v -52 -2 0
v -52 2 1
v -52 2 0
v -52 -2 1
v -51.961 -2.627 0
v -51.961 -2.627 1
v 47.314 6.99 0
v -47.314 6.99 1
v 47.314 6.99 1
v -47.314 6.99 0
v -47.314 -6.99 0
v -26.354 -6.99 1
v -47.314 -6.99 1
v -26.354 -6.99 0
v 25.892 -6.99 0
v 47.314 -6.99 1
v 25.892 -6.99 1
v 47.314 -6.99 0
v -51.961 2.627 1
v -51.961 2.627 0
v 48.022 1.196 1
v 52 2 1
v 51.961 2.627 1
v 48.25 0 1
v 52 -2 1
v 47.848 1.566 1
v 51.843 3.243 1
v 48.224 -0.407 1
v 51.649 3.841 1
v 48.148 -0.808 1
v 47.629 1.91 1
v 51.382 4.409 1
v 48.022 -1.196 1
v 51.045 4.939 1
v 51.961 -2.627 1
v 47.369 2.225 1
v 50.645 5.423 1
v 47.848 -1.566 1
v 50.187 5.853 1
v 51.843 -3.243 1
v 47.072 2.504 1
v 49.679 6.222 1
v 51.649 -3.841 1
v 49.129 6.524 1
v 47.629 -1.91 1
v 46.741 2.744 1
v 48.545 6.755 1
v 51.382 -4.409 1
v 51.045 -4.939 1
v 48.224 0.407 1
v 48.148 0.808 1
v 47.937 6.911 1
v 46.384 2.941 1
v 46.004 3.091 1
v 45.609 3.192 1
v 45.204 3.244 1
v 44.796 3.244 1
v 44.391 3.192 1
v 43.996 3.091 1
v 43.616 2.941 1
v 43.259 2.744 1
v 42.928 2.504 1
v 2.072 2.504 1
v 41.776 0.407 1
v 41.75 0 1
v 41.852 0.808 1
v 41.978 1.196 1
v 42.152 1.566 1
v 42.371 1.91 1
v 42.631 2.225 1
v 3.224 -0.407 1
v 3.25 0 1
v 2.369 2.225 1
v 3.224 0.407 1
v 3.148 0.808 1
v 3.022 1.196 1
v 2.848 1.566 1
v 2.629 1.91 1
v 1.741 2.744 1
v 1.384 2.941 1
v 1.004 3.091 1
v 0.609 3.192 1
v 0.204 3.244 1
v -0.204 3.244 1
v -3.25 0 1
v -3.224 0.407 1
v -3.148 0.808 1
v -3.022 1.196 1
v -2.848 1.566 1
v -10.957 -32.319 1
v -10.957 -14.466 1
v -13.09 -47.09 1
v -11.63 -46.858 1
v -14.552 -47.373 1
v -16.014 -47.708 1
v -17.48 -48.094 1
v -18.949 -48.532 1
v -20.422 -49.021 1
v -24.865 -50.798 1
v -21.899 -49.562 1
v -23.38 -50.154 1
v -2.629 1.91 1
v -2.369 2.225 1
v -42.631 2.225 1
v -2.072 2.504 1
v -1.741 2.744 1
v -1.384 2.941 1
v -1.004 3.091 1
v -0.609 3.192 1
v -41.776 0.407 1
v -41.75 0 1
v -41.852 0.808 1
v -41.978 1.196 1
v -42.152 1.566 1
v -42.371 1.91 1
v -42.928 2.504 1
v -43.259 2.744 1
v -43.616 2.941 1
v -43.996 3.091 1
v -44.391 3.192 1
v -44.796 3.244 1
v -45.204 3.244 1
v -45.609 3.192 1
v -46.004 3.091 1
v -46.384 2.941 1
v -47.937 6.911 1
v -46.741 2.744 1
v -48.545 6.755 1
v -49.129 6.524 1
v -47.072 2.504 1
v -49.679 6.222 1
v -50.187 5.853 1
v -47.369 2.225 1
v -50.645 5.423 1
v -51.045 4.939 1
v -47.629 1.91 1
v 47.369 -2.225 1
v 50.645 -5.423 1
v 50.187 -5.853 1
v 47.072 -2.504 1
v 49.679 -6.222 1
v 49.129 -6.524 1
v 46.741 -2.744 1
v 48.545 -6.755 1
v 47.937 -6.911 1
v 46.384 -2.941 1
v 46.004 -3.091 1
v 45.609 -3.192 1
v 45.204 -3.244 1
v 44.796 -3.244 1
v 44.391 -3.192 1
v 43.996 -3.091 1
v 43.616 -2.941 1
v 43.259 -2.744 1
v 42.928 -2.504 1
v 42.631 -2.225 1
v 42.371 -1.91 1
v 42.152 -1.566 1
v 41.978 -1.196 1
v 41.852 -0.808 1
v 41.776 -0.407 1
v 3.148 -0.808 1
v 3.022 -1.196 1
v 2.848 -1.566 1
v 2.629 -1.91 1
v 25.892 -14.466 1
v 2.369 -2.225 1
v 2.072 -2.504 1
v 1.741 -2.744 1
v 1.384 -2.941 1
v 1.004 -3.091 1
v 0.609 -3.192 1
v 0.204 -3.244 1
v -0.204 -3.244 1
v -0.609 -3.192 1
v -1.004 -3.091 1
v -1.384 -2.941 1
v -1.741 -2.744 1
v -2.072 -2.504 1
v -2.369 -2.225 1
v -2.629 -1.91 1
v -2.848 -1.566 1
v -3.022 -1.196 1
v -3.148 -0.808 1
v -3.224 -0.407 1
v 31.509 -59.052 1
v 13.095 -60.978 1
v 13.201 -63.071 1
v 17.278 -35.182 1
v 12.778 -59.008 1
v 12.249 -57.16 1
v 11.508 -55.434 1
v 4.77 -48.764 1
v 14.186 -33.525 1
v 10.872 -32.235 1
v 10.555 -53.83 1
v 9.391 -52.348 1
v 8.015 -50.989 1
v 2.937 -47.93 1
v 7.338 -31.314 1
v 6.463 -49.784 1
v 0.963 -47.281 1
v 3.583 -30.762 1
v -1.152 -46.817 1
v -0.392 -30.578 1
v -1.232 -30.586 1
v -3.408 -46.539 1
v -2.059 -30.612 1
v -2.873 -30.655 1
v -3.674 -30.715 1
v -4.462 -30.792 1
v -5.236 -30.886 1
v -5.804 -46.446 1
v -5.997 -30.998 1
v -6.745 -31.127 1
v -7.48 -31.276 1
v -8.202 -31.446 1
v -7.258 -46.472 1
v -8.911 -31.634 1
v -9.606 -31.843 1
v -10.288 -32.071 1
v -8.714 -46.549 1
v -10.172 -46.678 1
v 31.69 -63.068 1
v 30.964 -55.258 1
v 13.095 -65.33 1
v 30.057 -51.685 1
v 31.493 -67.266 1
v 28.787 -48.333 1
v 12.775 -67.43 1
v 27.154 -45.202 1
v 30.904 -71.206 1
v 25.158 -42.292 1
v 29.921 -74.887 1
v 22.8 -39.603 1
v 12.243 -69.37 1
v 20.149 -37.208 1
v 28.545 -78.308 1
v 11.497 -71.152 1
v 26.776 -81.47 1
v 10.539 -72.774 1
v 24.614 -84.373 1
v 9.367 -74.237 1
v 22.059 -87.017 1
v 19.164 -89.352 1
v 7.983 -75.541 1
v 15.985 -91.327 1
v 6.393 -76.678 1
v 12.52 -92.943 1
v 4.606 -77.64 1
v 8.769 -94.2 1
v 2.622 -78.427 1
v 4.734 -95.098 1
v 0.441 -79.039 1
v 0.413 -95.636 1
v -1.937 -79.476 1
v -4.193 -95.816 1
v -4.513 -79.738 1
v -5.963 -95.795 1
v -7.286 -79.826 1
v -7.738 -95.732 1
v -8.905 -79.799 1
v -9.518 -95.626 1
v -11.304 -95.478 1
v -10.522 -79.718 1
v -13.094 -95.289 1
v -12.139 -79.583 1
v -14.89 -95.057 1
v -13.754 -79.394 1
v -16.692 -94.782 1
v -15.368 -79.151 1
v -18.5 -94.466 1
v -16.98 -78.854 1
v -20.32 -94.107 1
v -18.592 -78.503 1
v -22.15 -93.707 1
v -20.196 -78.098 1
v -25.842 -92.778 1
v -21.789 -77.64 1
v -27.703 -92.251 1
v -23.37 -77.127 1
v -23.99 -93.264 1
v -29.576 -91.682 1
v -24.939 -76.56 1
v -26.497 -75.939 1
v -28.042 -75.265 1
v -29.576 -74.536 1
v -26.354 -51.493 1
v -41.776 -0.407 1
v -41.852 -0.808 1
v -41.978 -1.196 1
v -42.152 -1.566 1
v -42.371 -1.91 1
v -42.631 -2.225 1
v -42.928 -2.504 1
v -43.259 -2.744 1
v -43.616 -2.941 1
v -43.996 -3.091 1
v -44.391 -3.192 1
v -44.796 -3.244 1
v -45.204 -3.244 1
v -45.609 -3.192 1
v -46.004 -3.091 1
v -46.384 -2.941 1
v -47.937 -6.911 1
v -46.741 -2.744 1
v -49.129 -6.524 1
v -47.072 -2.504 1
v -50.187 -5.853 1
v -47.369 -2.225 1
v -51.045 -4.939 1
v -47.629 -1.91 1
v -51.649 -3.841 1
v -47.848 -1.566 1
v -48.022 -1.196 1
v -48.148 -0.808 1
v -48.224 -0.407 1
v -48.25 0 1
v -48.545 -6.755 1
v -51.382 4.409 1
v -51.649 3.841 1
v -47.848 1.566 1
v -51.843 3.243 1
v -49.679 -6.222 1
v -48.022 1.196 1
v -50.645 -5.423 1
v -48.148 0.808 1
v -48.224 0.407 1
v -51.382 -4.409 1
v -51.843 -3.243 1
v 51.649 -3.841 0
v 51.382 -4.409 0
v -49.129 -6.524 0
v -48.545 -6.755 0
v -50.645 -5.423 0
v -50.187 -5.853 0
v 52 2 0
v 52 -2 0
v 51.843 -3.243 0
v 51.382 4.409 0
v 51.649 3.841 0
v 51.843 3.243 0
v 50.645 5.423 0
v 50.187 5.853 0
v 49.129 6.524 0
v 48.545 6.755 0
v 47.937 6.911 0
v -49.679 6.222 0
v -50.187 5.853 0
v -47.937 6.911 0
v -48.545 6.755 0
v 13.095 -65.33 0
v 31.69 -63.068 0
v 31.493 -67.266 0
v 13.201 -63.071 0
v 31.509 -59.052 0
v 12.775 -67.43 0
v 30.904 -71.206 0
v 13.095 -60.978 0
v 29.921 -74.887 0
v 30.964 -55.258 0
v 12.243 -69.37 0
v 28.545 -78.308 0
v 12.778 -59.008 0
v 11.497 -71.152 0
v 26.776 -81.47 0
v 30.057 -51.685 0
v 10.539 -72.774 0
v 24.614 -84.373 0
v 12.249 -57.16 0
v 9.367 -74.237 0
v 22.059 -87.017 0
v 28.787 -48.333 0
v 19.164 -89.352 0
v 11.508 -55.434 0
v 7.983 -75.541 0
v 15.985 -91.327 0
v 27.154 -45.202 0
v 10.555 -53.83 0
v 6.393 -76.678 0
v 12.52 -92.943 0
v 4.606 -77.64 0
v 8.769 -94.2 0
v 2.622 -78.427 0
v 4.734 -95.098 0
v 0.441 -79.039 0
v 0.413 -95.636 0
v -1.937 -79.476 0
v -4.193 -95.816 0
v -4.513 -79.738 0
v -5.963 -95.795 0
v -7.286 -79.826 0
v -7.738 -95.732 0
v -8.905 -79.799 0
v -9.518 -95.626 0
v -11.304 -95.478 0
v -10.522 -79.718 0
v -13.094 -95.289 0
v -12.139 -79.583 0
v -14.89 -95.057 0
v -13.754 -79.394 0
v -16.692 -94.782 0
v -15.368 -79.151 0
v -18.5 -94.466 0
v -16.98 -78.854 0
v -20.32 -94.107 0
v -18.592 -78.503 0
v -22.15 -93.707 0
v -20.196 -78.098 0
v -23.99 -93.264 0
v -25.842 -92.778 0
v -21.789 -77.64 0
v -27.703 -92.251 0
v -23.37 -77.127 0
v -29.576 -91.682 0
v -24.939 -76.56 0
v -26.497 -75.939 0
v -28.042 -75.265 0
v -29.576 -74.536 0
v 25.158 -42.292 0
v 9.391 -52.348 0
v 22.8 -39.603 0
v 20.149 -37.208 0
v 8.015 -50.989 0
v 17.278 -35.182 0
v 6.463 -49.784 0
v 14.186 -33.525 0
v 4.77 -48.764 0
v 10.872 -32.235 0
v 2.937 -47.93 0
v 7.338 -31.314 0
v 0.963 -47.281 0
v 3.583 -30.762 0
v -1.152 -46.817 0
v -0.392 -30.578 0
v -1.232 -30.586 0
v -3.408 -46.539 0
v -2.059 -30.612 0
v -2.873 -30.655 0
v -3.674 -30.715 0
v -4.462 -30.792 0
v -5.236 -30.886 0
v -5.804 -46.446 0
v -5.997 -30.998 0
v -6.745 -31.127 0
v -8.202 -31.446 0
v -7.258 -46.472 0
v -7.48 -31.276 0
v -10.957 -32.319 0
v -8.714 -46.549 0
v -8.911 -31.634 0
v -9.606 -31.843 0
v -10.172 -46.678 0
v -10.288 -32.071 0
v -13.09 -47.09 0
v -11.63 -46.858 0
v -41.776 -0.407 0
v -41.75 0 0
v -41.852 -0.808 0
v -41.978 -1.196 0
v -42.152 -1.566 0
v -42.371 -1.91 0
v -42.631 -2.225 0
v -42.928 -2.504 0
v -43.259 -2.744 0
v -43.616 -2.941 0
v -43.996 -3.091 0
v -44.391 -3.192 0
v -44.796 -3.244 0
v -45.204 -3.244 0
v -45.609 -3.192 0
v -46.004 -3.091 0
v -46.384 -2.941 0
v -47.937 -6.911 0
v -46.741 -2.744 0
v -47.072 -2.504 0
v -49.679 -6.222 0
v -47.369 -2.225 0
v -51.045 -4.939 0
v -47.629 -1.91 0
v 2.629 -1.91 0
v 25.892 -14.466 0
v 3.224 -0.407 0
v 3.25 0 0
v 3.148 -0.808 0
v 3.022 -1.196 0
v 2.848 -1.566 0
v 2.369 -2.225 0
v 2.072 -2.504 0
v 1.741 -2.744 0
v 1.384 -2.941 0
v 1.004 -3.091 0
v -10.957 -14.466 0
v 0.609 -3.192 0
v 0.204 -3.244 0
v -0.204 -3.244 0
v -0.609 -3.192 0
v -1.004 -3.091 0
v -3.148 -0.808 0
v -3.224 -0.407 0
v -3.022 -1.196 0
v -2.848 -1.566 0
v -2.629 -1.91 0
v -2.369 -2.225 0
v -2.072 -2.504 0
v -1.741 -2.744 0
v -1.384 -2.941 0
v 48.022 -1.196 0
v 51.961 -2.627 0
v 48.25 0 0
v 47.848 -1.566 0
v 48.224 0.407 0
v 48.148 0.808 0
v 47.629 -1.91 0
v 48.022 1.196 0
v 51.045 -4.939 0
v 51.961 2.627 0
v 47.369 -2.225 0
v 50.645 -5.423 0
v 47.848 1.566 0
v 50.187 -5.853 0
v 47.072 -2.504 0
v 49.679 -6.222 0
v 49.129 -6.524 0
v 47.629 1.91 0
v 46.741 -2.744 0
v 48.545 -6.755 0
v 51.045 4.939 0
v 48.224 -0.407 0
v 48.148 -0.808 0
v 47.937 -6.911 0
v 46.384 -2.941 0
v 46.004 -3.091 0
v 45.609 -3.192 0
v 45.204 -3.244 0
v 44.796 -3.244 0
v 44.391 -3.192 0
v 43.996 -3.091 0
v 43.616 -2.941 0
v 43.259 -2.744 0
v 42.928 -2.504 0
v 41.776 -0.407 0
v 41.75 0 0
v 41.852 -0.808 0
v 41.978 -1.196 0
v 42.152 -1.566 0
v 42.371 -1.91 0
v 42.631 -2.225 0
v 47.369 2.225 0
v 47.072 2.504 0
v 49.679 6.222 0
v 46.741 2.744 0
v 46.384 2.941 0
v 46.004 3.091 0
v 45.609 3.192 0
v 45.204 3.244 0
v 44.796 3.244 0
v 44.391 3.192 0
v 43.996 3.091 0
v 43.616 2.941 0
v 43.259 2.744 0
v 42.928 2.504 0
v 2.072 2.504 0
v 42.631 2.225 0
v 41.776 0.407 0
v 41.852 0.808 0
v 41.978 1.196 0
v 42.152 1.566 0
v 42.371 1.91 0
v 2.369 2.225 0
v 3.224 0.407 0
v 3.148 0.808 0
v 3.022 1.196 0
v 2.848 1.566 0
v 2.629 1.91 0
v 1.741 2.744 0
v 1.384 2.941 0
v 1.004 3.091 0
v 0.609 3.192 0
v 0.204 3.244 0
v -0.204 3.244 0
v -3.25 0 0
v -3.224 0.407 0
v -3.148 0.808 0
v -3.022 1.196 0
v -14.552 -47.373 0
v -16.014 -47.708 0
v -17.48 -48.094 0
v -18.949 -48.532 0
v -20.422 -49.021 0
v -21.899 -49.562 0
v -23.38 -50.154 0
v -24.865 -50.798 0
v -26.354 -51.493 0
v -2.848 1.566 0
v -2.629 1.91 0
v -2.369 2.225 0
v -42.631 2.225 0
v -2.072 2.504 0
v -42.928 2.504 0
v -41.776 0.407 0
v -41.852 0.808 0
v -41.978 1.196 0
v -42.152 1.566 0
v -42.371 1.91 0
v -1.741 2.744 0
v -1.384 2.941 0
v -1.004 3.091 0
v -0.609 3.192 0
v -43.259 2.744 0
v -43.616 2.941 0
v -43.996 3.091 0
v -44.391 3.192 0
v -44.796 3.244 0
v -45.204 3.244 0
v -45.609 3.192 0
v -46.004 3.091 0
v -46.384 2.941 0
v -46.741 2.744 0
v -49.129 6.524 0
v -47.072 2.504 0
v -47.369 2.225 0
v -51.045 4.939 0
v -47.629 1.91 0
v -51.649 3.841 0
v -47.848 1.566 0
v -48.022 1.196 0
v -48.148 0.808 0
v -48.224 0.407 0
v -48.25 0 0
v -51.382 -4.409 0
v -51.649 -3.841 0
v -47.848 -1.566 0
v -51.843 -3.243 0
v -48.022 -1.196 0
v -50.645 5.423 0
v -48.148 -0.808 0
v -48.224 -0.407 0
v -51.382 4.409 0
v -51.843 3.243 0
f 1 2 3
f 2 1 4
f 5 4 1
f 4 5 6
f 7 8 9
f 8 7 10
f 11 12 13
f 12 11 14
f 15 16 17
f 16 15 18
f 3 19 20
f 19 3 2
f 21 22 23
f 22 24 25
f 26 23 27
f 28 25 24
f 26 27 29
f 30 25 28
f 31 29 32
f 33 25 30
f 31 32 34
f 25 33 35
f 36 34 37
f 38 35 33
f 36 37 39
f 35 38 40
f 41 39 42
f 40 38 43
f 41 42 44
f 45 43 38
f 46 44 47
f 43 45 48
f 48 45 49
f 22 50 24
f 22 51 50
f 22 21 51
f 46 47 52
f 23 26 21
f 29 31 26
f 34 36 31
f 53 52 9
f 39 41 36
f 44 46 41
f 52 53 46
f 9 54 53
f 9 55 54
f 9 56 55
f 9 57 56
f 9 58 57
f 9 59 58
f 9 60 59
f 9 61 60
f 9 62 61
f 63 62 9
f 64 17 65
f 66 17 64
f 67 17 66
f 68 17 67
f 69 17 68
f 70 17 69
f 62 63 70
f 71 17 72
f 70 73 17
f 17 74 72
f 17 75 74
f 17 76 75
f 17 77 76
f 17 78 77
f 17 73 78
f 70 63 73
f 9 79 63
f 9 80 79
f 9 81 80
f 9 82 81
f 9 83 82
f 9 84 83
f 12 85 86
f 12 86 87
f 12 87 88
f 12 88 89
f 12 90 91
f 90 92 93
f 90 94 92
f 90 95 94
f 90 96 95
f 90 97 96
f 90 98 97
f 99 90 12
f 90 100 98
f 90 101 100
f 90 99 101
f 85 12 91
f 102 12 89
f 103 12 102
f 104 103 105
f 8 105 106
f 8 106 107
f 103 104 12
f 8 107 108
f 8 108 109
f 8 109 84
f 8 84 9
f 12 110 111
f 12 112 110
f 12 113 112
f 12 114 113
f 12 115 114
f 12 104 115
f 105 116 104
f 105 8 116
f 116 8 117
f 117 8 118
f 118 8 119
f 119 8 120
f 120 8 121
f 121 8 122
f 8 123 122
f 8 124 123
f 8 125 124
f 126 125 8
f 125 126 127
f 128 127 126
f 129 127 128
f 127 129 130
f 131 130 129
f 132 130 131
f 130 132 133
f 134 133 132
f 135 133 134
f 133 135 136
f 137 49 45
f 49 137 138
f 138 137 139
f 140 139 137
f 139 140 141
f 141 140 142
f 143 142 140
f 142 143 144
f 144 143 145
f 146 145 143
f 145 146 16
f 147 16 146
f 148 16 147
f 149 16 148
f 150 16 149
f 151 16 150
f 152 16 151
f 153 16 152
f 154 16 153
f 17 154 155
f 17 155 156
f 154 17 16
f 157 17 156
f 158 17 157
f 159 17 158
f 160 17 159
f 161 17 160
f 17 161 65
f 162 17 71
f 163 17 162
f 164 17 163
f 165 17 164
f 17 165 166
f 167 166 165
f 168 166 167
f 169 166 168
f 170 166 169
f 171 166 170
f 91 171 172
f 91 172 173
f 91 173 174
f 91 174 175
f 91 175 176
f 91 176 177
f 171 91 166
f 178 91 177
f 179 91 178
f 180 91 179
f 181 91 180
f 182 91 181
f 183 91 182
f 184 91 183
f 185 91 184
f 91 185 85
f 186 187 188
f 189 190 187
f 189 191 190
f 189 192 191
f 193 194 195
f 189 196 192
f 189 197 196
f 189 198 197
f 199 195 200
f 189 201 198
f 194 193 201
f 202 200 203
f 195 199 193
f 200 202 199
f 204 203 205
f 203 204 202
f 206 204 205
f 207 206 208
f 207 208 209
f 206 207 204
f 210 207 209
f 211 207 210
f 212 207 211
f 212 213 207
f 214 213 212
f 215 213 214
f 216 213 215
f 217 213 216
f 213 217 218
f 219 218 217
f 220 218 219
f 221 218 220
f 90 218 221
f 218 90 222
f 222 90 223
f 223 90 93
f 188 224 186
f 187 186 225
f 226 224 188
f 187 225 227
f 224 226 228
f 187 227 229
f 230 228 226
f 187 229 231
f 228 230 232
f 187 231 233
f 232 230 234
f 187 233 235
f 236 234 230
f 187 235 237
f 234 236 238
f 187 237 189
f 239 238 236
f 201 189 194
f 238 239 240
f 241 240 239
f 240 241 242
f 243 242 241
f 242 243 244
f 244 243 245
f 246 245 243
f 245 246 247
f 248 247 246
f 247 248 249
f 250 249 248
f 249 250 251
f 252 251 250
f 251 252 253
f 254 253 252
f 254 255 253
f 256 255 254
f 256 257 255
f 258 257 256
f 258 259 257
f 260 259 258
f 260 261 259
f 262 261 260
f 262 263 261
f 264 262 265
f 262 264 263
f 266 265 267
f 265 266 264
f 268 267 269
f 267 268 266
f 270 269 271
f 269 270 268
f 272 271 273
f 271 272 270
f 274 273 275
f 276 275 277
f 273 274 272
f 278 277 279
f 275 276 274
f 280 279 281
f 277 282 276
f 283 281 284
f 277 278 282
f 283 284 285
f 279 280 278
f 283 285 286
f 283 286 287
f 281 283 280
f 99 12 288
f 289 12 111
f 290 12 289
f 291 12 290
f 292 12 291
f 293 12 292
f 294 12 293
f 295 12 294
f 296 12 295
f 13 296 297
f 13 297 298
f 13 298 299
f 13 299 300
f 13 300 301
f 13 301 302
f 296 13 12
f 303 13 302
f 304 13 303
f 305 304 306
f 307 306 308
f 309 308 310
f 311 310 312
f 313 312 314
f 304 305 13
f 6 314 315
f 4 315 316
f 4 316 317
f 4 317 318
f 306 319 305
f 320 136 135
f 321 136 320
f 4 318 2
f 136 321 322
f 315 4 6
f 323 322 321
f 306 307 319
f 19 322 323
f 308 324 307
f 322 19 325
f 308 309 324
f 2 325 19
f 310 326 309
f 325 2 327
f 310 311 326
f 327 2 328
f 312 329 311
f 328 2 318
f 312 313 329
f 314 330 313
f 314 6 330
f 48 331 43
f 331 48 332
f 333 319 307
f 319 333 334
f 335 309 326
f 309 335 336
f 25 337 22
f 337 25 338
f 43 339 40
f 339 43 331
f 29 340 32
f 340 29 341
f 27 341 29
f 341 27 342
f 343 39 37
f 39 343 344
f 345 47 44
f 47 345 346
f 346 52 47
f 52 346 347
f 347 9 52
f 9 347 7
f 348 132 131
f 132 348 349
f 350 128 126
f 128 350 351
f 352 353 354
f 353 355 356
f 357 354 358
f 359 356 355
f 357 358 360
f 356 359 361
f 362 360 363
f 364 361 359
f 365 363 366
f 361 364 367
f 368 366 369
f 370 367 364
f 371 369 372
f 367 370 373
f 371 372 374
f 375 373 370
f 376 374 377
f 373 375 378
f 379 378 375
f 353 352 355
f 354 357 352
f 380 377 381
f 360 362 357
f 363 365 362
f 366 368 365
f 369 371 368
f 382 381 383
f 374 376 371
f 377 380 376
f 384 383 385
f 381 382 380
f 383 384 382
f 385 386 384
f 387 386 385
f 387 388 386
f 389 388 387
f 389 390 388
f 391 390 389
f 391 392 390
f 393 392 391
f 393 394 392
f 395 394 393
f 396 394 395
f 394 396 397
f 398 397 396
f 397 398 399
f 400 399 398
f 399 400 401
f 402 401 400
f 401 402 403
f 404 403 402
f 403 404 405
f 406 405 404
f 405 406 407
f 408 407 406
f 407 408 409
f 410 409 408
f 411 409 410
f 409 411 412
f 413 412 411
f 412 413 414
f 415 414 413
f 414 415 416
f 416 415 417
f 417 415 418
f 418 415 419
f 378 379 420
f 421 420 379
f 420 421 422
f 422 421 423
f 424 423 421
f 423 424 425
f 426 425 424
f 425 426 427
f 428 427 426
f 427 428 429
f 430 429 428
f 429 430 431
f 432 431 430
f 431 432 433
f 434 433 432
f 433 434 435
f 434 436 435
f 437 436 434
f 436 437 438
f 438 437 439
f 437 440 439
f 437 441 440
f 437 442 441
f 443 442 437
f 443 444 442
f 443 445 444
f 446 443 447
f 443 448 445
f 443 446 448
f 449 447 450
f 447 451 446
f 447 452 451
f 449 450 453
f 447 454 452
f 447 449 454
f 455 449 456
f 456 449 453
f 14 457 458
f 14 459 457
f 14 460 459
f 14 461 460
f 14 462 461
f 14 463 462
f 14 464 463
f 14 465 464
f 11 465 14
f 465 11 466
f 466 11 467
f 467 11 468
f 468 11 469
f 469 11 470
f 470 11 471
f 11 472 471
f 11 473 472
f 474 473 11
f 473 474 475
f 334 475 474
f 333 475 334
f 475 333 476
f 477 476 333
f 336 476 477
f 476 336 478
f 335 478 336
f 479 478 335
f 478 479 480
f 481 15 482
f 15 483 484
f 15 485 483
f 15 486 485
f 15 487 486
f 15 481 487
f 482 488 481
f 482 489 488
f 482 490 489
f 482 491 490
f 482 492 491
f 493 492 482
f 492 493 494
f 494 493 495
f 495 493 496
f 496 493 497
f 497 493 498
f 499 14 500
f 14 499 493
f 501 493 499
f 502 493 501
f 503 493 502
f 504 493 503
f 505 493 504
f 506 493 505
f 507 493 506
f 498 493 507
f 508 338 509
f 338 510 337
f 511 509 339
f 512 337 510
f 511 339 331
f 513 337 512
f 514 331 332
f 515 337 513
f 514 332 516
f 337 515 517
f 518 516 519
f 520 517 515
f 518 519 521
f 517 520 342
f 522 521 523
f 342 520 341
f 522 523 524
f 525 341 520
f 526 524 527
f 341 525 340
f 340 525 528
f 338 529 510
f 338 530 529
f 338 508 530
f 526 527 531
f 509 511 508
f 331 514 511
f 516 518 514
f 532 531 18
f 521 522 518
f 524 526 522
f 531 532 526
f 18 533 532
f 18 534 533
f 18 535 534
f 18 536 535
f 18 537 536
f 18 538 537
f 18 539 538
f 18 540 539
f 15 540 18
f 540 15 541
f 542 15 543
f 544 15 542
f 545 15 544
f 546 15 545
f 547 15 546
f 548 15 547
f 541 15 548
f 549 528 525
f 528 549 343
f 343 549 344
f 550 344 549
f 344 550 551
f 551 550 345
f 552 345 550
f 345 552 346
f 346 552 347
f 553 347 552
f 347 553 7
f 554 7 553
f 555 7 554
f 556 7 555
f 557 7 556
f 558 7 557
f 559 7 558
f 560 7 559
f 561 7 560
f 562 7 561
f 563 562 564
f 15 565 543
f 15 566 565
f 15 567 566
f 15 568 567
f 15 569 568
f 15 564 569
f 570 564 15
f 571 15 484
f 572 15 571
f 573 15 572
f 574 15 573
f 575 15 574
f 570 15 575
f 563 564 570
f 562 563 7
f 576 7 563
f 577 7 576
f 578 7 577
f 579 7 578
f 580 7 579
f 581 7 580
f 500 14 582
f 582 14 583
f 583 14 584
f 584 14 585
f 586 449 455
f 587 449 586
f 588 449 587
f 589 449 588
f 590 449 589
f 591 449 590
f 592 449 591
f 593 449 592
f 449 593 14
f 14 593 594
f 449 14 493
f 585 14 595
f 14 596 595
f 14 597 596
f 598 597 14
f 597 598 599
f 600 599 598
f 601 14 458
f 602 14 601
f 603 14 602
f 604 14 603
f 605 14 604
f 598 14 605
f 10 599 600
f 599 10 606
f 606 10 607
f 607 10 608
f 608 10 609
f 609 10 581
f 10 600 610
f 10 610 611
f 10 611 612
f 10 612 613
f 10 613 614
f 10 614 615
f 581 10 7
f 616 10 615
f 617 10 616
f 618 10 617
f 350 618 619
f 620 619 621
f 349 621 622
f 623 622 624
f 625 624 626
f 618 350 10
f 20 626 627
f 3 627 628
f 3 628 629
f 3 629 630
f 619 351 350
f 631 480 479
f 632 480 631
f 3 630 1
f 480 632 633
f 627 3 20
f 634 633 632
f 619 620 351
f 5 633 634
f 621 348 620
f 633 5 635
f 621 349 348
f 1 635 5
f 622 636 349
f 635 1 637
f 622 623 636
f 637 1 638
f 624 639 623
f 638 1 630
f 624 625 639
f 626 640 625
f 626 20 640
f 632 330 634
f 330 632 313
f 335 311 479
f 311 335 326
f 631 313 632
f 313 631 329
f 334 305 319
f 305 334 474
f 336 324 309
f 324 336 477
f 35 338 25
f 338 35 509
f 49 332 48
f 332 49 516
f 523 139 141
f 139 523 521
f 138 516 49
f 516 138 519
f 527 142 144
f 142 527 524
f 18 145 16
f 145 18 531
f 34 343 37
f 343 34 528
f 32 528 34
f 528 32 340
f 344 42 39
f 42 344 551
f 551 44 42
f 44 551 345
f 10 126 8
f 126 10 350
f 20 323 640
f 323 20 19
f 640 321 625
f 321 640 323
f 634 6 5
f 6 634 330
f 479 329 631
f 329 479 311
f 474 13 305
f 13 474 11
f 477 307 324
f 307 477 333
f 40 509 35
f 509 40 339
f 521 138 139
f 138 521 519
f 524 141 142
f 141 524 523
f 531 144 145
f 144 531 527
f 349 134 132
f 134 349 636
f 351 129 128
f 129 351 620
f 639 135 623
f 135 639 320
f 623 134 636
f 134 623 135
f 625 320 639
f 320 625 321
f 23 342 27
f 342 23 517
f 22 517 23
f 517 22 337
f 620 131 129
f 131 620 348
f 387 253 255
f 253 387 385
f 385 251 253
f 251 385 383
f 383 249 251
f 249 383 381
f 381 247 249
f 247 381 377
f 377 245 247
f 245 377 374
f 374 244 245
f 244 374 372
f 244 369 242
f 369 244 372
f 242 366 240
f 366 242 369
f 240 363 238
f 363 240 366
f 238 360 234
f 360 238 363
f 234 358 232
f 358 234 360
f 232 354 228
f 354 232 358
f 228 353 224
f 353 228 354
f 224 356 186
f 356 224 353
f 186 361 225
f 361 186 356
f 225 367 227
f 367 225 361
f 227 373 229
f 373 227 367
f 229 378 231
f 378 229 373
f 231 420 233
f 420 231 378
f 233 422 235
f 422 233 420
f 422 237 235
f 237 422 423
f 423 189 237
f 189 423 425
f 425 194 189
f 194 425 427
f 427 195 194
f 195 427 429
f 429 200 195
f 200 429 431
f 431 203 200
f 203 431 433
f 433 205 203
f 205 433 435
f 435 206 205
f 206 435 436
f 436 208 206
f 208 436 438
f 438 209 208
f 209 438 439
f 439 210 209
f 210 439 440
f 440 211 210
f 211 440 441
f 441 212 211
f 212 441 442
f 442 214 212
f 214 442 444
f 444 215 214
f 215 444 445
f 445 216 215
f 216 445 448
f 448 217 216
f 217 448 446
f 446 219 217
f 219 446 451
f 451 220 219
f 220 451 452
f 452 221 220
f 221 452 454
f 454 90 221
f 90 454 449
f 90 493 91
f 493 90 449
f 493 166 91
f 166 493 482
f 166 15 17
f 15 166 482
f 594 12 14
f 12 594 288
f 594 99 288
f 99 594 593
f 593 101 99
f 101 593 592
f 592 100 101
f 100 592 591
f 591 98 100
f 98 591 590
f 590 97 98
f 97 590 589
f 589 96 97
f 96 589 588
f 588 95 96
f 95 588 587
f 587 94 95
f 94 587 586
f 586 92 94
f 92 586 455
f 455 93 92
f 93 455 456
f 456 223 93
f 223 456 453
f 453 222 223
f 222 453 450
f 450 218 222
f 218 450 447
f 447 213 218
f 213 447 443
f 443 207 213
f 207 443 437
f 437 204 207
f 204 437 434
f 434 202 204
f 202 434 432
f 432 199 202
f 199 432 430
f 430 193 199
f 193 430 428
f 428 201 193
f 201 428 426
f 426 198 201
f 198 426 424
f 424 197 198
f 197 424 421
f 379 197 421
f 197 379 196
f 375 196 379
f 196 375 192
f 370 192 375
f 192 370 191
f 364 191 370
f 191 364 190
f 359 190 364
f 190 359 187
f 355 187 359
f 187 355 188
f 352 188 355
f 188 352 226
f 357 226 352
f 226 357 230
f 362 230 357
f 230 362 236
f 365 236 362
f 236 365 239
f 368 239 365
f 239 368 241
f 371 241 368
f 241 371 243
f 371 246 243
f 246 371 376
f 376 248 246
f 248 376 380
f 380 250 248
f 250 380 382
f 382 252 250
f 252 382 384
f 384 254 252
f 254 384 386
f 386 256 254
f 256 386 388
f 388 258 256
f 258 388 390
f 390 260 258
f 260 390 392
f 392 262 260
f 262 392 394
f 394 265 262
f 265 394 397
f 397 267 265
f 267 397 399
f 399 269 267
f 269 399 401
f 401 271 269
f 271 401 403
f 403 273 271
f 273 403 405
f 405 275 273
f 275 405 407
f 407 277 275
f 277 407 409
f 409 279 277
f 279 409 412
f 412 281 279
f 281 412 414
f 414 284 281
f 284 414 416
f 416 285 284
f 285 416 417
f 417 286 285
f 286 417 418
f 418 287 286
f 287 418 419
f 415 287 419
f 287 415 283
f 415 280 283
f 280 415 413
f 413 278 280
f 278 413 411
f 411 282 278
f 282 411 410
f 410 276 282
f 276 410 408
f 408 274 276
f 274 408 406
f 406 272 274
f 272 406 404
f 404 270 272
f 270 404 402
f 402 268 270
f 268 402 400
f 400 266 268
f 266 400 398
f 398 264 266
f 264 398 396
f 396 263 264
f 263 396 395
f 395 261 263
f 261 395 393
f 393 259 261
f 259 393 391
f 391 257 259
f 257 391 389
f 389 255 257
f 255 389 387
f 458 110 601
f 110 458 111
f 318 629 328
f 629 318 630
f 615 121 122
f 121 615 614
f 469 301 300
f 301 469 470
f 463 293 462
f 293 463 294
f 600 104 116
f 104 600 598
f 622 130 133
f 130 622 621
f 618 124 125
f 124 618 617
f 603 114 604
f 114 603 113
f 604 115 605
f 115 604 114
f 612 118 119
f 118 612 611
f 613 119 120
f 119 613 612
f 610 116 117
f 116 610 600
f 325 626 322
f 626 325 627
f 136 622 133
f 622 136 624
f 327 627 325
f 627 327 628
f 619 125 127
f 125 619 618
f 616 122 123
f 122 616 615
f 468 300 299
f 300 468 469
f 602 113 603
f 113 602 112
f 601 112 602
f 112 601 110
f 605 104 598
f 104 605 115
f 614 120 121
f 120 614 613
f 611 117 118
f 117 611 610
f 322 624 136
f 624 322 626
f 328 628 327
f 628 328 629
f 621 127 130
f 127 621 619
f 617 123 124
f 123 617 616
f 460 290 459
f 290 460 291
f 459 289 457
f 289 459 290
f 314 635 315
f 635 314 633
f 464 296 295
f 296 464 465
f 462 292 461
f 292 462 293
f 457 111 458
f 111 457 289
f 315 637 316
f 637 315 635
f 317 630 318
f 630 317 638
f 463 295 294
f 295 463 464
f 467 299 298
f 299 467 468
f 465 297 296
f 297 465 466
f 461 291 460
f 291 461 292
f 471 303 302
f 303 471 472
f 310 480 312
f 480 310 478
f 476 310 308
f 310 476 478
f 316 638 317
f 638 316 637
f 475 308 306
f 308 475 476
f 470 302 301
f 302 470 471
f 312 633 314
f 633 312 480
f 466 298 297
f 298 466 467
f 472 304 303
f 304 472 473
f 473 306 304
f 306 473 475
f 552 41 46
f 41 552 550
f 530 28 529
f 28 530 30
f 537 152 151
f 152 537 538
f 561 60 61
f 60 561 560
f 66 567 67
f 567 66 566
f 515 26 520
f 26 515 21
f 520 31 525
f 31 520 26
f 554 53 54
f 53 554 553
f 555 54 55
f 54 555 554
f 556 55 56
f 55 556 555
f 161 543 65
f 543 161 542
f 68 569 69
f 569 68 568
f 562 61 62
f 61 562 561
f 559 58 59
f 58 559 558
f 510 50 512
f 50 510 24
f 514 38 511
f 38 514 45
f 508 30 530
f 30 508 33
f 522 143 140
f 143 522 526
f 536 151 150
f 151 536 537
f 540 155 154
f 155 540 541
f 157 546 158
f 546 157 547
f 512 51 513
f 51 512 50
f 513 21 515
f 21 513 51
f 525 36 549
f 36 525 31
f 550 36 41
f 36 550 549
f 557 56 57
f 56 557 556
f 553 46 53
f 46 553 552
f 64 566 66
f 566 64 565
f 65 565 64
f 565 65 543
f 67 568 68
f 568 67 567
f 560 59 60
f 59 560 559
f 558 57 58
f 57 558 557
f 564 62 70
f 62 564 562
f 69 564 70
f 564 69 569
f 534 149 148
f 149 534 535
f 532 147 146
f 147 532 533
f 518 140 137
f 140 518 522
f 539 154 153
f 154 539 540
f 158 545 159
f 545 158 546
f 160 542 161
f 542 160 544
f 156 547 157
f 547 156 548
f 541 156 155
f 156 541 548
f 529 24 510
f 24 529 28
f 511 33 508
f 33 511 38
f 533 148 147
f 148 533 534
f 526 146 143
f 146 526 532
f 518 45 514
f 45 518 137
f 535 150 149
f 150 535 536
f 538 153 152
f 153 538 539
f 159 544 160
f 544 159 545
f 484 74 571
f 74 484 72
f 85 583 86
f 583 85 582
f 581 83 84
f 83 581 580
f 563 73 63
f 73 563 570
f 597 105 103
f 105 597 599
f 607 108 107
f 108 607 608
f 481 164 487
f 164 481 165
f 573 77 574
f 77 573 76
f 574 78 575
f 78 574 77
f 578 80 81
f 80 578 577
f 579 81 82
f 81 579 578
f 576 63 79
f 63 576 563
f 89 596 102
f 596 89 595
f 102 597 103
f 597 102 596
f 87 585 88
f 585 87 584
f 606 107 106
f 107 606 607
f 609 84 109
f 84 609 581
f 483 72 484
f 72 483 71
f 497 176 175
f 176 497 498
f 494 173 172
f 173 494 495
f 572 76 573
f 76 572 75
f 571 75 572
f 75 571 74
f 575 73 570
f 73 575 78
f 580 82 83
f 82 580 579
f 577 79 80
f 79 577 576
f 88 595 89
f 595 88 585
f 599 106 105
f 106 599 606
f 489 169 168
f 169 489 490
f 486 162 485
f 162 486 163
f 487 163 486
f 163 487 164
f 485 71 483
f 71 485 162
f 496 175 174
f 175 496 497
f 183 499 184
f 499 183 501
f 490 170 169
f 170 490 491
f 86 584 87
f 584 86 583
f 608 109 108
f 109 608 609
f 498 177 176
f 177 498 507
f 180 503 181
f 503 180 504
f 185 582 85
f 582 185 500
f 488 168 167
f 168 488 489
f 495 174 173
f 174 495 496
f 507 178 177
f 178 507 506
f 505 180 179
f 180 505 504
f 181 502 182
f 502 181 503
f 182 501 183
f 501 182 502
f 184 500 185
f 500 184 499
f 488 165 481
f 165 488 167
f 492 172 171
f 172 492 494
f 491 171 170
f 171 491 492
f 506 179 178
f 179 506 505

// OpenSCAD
$fn = 50;


difference() {
	union() {
		translate(v = [0, 0, 0]) {
			rotate(a = [0, 0, 0]) {
				hull() {
					translate(v = [-47.0000000000, 2.0000000000, 0]) {
						rotate(a = [0, 0, 0]) {
							translate(v = [0, 0, 0]) {
								rotate(a = [0, 0, 0]) {
									cylinder(h = 1, r = 5);
								}
							}
						}
					}
					translate(v = [47.0000000000, 2.0000000000, 0]) {
						rotate(a = [0, 0, 0]) {
							translate(v = [0, 0, 0]) {
								rotate(a = [0, 0, 0]) {
									cylinder(h = 1, r = 5);
								}
							}
						}
					}
					translate(v = [-47.0000000000, -2.0000000000, 0]) {
						rotate(a = [0, 0, 0]) {
							translate(v = [0, 0, 0]) {
								rotate(a = [0, 0, 0]) {
									cylinder(h = 1, r = 5);
								}
							}
						}
					}
					translate(v = [47.0000000000, -2.0000000000, 0]) {
						rotate(a = [0, 0, 0]) {
							translate(v = [0, 0, 0]) {
								rotate(a = [0, 0, 0]) {
									cylinder(h = 1, r = 5);
								}
							}
						}
					}
				}
			}
		}
		translate(v = [0, 0, 0]) {
			rotate(a = [0, 0, 0]) {
				linear_extrude(height = 1) {
					text(font = "DejaVu Sans Mono:style=Bold", halign = "center", size = 95.0000000000, text = "5", valign = "top");
				}
			}
		}
	}
	union() {
		translate(v = [-45.0000000000, 0.0000000000, -125.0000000000]) {
			rotate(a = [0, 0, 0]) {
				cylinder(h = 250, r = 3.2500000000);
			}
		}
		translate(v = [45.0000000000, 0.0000000000, -125.0000000000]) {
			rotate(a = [0, 0, 0]) {
				cylinder(h = 250, r = 3.2500000000);
			}
		}
		translate(v = [45.0000000000, 0.0000000000, -125.0000000000]) {
			rotate(a = [0, 0, 0]) {
				cylinder(h = 250, r = 3.2500000000);
			}
		}
		translate(v = [0, 0, -125.0000000000]) {
			rotate(a = [0, 0, 0]) {
				cylinder(h = 250, r = 3.2500000000);
			}
		}
	}
}
